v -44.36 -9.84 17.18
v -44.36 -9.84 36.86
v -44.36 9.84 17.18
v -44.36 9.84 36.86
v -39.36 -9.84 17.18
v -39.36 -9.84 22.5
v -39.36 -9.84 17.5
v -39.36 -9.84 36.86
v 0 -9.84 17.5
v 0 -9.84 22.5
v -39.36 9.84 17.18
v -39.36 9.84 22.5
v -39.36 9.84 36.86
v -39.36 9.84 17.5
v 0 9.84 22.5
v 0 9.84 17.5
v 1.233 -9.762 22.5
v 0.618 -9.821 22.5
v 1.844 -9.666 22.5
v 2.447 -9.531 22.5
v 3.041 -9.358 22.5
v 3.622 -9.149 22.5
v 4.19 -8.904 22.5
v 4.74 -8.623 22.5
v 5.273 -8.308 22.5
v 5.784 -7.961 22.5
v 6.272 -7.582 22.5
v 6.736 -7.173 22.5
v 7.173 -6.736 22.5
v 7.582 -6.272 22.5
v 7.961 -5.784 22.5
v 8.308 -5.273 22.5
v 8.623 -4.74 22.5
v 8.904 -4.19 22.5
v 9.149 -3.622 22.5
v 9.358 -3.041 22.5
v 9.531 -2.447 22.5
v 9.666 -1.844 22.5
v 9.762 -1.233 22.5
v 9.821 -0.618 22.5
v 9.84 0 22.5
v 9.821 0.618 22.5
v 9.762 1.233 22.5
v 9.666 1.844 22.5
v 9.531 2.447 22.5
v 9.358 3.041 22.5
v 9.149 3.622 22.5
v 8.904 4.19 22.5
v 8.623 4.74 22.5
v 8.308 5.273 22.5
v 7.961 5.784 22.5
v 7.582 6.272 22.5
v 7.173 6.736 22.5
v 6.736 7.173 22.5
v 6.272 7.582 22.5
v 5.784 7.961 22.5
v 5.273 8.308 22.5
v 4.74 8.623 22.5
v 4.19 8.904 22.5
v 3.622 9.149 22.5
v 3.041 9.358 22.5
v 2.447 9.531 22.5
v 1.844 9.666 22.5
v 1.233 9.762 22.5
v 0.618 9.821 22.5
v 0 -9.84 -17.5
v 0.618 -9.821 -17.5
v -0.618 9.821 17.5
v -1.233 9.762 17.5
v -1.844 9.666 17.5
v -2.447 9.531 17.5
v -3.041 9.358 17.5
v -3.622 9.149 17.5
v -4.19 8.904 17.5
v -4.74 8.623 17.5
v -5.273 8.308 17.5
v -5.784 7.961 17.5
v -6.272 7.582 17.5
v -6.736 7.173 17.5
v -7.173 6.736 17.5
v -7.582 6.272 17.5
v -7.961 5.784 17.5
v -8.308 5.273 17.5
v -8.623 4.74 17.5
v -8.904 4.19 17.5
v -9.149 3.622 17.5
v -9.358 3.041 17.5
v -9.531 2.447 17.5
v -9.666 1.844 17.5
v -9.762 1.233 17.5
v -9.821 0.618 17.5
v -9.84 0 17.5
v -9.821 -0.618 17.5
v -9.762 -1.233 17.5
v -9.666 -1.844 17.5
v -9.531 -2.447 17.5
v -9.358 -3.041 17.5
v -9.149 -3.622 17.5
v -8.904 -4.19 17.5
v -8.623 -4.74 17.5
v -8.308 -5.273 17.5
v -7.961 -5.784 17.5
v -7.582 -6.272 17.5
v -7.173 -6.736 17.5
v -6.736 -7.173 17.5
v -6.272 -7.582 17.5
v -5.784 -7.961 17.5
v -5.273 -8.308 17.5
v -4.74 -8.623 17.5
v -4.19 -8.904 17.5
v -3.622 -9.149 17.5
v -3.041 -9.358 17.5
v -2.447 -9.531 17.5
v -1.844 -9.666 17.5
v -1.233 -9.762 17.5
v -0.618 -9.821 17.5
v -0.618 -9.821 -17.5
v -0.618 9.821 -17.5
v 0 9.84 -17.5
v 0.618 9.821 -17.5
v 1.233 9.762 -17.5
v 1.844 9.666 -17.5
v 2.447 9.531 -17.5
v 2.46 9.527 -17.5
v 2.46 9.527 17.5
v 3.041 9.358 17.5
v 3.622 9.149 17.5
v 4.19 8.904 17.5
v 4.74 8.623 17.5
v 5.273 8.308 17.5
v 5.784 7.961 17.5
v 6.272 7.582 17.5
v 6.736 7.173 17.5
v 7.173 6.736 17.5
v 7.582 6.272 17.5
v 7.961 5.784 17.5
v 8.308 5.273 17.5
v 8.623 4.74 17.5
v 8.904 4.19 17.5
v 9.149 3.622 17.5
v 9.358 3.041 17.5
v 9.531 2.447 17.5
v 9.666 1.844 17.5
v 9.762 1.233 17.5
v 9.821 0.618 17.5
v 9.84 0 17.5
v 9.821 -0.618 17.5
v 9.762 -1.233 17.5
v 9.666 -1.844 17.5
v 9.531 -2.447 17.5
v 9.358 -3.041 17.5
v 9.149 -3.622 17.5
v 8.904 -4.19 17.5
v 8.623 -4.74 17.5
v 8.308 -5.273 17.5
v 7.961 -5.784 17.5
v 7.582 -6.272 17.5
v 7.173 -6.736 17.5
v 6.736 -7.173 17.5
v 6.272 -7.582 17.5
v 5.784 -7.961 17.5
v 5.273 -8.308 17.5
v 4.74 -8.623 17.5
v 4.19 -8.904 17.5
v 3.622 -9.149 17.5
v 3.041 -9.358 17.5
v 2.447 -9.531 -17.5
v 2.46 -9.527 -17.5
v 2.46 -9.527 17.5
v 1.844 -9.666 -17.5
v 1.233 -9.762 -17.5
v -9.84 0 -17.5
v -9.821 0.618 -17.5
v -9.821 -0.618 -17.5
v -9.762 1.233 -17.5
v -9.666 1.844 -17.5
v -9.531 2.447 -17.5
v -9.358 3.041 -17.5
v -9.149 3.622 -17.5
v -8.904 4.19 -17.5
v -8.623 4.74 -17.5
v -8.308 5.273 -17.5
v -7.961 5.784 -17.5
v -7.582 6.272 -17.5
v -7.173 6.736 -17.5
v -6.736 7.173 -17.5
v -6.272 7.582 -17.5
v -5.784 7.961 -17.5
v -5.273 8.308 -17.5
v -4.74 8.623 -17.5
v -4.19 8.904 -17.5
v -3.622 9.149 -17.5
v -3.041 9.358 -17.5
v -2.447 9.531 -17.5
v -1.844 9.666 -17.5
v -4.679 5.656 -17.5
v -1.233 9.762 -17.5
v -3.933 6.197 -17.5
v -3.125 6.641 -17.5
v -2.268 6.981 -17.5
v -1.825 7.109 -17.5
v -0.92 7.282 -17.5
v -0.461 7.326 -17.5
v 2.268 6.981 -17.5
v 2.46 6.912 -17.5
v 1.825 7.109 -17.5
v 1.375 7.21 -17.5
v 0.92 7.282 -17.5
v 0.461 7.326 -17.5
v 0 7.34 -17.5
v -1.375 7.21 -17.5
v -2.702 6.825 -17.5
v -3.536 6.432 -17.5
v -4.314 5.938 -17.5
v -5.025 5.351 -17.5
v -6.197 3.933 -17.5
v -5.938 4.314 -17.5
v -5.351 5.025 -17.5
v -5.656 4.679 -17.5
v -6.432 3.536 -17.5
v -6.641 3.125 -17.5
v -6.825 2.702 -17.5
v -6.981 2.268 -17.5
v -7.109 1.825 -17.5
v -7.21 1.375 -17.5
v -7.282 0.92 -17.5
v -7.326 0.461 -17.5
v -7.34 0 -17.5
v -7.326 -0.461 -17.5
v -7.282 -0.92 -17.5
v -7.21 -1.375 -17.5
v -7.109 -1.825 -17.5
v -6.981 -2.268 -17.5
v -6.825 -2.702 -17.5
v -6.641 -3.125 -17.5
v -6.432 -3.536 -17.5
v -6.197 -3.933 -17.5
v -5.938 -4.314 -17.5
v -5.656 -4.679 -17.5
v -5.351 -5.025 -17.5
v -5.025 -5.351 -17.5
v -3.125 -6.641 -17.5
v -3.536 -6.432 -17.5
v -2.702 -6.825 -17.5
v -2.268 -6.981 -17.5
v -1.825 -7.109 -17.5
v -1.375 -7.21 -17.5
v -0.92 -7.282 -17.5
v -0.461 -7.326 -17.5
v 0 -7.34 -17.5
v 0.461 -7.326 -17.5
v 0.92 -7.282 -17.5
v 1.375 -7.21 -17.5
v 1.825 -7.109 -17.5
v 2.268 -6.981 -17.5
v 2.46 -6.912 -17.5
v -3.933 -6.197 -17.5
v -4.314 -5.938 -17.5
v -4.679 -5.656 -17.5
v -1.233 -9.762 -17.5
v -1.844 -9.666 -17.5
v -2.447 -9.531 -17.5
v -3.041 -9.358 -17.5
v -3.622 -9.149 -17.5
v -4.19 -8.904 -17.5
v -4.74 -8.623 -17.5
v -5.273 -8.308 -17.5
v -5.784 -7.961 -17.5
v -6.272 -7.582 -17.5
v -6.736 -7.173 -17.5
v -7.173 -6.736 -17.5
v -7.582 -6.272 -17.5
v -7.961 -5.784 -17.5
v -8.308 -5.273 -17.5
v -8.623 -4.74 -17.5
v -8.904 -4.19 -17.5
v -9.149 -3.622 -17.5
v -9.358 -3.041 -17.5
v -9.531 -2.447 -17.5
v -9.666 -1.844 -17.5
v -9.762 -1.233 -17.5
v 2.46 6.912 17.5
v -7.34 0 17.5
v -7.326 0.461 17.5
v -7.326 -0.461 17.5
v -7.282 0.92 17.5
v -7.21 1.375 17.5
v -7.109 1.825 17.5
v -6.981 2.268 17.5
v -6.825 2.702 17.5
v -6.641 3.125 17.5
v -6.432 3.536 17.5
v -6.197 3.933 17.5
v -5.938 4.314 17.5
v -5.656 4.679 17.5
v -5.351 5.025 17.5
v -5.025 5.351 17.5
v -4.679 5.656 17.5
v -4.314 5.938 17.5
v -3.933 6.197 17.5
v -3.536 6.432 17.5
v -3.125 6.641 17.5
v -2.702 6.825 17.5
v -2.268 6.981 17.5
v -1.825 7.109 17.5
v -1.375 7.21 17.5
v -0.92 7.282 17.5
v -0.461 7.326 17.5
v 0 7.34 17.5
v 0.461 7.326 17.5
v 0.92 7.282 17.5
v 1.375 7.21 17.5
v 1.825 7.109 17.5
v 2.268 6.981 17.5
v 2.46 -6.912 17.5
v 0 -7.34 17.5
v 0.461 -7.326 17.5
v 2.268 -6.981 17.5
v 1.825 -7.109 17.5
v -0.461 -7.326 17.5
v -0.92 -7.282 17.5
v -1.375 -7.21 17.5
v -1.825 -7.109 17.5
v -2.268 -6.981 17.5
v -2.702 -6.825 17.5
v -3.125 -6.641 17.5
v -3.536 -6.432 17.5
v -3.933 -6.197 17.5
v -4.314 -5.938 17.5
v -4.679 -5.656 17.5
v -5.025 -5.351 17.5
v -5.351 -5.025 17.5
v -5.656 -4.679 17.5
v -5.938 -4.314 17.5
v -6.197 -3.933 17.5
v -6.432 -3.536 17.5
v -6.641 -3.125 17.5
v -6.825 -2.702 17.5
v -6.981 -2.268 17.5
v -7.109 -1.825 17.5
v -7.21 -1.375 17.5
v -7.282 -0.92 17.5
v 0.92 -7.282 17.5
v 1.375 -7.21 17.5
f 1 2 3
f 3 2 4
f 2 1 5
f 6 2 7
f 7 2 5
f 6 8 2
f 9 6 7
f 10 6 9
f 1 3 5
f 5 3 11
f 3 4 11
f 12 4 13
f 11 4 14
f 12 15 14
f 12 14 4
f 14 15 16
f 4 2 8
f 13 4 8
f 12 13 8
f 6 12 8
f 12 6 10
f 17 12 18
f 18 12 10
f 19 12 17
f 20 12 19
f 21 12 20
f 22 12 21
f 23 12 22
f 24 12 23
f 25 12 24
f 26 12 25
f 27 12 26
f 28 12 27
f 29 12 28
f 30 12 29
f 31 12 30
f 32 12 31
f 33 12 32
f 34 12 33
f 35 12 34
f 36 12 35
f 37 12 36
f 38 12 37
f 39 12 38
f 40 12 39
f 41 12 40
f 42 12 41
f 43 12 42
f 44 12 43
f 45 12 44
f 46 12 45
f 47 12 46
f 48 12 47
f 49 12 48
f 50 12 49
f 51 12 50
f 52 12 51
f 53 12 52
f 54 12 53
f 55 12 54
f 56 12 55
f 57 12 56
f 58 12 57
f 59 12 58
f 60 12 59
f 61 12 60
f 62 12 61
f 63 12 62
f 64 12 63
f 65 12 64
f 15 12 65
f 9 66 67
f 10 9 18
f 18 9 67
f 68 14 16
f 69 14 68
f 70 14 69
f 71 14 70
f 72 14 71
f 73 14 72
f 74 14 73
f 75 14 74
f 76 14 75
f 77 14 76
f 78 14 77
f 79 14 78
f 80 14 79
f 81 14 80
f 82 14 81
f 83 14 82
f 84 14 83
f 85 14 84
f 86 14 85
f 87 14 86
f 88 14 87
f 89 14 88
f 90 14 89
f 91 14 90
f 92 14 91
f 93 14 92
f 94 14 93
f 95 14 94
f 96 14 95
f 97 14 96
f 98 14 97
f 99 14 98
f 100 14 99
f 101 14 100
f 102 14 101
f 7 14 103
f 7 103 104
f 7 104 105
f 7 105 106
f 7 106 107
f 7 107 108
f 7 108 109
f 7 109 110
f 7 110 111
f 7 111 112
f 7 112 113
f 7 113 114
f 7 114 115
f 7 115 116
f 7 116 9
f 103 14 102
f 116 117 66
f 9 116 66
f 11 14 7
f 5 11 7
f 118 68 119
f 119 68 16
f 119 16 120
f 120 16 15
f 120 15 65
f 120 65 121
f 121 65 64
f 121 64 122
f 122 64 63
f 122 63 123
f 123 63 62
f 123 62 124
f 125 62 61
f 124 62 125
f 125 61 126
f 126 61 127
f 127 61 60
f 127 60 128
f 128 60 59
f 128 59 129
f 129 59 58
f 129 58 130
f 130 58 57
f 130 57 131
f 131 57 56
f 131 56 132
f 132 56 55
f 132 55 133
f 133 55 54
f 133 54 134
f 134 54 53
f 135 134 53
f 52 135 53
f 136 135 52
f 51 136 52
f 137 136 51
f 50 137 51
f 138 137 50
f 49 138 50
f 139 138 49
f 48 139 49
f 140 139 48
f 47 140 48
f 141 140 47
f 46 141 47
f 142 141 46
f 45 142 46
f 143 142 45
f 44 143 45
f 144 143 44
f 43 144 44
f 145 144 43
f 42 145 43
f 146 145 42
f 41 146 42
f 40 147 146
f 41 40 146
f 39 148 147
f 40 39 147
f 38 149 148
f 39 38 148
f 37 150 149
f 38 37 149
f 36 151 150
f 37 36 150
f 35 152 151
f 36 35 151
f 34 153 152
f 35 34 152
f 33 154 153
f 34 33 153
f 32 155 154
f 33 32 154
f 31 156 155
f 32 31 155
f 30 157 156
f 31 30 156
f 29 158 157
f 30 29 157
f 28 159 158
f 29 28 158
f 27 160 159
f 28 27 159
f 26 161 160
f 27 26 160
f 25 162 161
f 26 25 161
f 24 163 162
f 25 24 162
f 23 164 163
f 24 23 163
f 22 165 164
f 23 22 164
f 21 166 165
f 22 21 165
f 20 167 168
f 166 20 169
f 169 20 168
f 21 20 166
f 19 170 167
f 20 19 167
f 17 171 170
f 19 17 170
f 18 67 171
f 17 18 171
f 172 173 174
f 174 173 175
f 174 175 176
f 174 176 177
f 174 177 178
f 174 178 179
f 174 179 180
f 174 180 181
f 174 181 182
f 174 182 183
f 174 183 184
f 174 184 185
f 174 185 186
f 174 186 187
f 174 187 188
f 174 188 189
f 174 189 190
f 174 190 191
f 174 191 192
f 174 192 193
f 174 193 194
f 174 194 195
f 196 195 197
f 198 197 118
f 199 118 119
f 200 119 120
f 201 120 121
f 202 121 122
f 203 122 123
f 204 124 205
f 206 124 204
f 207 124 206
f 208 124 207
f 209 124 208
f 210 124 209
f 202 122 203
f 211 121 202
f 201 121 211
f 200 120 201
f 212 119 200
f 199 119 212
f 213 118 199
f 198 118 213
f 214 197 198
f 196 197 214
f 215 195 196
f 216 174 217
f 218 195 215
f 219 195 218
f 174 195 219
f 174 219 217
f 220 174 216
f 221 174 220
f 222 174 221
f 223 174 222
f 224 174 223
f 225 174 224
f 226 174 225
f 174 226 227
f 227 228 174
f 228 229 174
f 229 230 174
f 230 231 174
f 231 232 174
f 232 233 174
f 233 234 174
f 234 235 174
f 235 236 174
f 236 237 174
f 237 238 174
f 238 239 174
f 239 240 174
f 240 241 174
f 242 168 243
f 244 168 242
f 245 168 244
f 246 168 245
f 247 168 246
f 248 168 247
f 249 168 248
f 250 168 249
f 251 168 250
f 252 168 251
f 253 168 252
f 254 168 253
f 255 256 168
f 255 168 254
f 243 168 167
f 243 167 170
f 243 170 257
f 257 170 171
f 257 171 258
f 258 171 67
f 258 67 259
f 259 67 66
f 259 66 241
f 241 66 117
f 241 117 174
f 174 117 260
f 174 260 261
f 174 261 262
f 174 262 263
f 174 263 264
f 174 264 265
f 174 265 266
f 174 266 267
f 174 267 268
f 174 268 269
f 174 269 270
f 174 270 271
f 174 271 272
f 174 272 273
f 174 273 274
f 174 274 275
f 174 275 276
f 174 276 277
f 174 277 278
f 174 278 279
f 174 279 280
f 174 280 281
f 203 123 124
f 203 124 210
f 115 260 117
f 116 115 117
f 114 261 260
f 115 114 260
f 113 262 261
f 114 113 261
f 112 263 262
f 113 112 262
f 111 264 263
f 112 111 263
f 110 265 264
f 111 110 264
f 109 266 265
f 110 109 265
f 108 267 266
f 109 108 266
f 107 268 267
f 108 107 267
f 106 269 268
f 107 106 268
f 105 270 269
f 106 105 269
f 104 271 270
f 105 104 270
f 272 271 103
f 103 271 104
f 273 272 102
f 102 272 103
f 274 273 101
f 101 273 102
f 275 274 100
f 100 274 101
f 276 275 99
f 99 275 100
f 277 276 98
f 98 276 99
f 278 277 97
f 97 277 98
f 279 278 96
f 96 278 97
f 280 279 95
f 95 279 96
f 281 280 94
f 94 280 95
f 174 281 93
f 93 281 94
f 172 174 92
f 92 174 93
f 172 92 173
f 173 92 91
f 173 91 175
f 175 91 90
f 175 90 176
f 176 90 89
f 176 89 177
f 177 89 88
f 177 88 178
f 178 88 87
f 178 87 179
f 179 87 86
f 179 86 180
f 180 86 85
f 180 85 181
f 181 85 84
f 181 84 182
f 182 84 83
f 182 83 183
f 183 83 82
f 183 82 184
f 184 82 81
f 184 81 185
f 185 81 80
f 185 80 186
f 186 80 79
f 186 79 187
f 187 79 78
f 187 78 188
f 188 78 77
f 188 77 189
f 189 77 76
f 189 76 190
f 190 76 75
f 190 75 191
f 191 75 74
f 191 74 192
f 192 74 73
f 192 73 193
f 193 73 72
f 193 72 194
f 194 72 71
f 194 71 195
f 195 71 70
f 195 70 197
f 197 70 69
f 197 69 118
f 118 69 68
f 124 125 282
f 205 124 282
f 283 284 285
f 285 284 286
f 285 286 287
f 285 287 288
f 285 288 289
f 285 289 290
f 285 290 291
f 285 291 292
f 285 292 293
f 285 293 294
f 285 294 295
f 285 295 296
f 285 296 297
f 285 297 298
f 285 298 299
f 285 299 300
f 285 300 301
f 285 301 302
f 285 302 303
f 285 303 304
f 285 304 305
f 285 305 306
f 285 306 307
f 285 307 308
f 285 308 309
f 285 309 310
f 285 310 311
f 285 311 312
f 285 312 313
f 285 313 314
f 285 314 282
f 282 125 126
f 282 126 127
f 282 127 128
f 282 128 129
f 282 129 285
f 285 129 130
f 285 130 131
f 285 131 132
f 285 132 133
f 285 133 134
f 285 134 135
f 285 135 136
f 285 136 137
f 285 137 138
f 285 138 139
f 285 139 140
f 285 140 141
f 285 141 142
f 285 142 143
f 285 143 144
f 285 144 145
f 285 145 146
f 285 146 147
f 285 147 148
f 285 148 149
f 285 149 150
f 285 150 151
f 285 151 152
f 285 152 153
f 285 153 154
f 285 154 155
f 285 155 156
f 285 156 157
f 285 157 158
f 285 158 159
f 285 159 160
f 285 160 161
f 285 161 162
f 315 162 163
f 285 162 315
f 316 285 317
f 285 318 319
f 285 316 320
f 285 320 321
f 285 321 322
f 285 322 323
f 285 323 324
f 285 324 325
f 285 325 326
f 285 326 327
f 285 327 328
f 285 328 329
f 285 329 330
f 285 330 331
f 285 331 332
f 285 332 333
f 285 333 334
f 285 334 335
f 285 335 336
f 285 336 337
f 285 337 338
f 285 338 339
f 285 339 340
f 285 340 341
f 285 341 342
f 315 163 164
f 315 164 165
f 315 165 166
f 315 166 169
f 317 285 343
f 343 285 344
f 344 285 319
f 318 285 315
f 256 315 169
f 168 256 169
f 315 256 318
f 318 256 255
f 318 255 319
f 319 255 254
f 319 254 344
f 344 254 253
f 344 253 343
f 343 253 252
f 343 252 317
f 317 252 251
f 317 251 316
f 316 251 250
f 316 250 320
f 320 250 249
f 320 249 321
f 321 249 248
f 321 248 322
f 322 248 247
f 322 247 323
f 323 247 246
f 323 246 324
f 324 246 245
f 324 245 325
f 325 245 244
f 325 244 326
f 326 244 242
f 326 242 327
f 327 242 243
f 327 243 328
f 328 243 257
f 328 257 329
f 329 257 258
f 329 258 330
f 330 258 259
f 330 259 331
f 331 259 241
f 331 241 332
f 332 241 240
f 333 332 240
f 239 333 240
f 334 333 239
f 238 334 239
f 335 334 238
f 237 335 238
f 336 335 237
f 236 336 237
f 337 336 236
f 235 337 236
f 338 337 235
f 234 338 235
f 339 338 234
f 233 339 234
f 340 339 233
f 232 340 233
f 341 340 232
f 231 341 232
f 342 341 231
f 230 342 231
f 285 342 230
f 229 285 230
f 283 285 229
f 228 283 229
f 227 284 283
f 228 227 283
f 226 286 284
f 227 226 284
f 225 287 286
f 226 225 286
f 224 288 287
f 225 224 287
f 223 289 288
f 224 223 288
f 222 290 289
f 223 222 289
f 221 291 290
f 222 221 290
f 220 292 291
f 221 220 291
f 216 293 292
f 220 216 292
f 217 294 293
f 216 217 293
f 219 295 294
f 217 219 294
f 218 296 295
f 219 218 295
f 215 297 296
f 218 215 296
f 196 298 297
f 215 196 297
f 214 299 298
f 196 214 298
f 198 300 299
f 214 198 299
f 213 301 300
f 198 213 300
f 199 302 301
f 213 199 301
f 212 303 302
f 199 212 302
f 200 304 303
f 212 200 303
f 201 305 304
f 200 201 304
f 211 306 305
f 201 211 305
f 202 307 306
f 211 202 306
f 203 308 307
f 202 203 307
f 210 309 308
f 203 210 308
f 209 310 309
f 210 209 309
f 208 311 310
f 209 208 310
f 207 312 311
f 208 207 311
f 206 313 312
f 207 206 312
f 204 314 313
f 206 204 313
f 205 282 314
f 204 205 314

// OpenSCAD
hingediameter=14.68;
bracketlength=35;
bracketthickness=5;
holderfraction=5/8;
hookthickness=5;
sfn=100;



module hingeholder() {
	difference() {
		difference() {
			cylinder(r=(hingediameter+bracketthickness)/2, h=bracketlength, center=true, $fn=sfn);
			cylinder(r=hingediameter/2, h=bracketlength+2, center=true, $fn=sfn);
		}
		translate([(hingediameter+bracketthickness)*holderfraction,0, 0]) {
			cube([hingediameter+bracketthickness, hingediameter+bracketthickness, bracketlength+2], center=true);
		}
	}	
}



module hook() {
	translate([0,0,(bracketlength+hookthickness)/2]) {
		cylinder(r=(hingediameter+bracketthickness)/2, h=hookthickness, center=true, $fn=sfn);
	}

	translate([-(hingediameter+bracketthickness),0, (bracketlength+hookthickness)/2]) {
		cube([(hingediameter+bracketthickness)*2, hingediameter+bracketthickness, hookthickness], center=true);
	}

	translate([(hingediameter+bracketthickness)*-2-hookthickness, (hingediameter+bracketthickness)/-2, hingediameter+bracketthickness/2]) {
		cube([hookthickness,hingediameter+bracketthickness, hingediameter+bracketthickness]);
	}

}



hingeholder();
hook();
